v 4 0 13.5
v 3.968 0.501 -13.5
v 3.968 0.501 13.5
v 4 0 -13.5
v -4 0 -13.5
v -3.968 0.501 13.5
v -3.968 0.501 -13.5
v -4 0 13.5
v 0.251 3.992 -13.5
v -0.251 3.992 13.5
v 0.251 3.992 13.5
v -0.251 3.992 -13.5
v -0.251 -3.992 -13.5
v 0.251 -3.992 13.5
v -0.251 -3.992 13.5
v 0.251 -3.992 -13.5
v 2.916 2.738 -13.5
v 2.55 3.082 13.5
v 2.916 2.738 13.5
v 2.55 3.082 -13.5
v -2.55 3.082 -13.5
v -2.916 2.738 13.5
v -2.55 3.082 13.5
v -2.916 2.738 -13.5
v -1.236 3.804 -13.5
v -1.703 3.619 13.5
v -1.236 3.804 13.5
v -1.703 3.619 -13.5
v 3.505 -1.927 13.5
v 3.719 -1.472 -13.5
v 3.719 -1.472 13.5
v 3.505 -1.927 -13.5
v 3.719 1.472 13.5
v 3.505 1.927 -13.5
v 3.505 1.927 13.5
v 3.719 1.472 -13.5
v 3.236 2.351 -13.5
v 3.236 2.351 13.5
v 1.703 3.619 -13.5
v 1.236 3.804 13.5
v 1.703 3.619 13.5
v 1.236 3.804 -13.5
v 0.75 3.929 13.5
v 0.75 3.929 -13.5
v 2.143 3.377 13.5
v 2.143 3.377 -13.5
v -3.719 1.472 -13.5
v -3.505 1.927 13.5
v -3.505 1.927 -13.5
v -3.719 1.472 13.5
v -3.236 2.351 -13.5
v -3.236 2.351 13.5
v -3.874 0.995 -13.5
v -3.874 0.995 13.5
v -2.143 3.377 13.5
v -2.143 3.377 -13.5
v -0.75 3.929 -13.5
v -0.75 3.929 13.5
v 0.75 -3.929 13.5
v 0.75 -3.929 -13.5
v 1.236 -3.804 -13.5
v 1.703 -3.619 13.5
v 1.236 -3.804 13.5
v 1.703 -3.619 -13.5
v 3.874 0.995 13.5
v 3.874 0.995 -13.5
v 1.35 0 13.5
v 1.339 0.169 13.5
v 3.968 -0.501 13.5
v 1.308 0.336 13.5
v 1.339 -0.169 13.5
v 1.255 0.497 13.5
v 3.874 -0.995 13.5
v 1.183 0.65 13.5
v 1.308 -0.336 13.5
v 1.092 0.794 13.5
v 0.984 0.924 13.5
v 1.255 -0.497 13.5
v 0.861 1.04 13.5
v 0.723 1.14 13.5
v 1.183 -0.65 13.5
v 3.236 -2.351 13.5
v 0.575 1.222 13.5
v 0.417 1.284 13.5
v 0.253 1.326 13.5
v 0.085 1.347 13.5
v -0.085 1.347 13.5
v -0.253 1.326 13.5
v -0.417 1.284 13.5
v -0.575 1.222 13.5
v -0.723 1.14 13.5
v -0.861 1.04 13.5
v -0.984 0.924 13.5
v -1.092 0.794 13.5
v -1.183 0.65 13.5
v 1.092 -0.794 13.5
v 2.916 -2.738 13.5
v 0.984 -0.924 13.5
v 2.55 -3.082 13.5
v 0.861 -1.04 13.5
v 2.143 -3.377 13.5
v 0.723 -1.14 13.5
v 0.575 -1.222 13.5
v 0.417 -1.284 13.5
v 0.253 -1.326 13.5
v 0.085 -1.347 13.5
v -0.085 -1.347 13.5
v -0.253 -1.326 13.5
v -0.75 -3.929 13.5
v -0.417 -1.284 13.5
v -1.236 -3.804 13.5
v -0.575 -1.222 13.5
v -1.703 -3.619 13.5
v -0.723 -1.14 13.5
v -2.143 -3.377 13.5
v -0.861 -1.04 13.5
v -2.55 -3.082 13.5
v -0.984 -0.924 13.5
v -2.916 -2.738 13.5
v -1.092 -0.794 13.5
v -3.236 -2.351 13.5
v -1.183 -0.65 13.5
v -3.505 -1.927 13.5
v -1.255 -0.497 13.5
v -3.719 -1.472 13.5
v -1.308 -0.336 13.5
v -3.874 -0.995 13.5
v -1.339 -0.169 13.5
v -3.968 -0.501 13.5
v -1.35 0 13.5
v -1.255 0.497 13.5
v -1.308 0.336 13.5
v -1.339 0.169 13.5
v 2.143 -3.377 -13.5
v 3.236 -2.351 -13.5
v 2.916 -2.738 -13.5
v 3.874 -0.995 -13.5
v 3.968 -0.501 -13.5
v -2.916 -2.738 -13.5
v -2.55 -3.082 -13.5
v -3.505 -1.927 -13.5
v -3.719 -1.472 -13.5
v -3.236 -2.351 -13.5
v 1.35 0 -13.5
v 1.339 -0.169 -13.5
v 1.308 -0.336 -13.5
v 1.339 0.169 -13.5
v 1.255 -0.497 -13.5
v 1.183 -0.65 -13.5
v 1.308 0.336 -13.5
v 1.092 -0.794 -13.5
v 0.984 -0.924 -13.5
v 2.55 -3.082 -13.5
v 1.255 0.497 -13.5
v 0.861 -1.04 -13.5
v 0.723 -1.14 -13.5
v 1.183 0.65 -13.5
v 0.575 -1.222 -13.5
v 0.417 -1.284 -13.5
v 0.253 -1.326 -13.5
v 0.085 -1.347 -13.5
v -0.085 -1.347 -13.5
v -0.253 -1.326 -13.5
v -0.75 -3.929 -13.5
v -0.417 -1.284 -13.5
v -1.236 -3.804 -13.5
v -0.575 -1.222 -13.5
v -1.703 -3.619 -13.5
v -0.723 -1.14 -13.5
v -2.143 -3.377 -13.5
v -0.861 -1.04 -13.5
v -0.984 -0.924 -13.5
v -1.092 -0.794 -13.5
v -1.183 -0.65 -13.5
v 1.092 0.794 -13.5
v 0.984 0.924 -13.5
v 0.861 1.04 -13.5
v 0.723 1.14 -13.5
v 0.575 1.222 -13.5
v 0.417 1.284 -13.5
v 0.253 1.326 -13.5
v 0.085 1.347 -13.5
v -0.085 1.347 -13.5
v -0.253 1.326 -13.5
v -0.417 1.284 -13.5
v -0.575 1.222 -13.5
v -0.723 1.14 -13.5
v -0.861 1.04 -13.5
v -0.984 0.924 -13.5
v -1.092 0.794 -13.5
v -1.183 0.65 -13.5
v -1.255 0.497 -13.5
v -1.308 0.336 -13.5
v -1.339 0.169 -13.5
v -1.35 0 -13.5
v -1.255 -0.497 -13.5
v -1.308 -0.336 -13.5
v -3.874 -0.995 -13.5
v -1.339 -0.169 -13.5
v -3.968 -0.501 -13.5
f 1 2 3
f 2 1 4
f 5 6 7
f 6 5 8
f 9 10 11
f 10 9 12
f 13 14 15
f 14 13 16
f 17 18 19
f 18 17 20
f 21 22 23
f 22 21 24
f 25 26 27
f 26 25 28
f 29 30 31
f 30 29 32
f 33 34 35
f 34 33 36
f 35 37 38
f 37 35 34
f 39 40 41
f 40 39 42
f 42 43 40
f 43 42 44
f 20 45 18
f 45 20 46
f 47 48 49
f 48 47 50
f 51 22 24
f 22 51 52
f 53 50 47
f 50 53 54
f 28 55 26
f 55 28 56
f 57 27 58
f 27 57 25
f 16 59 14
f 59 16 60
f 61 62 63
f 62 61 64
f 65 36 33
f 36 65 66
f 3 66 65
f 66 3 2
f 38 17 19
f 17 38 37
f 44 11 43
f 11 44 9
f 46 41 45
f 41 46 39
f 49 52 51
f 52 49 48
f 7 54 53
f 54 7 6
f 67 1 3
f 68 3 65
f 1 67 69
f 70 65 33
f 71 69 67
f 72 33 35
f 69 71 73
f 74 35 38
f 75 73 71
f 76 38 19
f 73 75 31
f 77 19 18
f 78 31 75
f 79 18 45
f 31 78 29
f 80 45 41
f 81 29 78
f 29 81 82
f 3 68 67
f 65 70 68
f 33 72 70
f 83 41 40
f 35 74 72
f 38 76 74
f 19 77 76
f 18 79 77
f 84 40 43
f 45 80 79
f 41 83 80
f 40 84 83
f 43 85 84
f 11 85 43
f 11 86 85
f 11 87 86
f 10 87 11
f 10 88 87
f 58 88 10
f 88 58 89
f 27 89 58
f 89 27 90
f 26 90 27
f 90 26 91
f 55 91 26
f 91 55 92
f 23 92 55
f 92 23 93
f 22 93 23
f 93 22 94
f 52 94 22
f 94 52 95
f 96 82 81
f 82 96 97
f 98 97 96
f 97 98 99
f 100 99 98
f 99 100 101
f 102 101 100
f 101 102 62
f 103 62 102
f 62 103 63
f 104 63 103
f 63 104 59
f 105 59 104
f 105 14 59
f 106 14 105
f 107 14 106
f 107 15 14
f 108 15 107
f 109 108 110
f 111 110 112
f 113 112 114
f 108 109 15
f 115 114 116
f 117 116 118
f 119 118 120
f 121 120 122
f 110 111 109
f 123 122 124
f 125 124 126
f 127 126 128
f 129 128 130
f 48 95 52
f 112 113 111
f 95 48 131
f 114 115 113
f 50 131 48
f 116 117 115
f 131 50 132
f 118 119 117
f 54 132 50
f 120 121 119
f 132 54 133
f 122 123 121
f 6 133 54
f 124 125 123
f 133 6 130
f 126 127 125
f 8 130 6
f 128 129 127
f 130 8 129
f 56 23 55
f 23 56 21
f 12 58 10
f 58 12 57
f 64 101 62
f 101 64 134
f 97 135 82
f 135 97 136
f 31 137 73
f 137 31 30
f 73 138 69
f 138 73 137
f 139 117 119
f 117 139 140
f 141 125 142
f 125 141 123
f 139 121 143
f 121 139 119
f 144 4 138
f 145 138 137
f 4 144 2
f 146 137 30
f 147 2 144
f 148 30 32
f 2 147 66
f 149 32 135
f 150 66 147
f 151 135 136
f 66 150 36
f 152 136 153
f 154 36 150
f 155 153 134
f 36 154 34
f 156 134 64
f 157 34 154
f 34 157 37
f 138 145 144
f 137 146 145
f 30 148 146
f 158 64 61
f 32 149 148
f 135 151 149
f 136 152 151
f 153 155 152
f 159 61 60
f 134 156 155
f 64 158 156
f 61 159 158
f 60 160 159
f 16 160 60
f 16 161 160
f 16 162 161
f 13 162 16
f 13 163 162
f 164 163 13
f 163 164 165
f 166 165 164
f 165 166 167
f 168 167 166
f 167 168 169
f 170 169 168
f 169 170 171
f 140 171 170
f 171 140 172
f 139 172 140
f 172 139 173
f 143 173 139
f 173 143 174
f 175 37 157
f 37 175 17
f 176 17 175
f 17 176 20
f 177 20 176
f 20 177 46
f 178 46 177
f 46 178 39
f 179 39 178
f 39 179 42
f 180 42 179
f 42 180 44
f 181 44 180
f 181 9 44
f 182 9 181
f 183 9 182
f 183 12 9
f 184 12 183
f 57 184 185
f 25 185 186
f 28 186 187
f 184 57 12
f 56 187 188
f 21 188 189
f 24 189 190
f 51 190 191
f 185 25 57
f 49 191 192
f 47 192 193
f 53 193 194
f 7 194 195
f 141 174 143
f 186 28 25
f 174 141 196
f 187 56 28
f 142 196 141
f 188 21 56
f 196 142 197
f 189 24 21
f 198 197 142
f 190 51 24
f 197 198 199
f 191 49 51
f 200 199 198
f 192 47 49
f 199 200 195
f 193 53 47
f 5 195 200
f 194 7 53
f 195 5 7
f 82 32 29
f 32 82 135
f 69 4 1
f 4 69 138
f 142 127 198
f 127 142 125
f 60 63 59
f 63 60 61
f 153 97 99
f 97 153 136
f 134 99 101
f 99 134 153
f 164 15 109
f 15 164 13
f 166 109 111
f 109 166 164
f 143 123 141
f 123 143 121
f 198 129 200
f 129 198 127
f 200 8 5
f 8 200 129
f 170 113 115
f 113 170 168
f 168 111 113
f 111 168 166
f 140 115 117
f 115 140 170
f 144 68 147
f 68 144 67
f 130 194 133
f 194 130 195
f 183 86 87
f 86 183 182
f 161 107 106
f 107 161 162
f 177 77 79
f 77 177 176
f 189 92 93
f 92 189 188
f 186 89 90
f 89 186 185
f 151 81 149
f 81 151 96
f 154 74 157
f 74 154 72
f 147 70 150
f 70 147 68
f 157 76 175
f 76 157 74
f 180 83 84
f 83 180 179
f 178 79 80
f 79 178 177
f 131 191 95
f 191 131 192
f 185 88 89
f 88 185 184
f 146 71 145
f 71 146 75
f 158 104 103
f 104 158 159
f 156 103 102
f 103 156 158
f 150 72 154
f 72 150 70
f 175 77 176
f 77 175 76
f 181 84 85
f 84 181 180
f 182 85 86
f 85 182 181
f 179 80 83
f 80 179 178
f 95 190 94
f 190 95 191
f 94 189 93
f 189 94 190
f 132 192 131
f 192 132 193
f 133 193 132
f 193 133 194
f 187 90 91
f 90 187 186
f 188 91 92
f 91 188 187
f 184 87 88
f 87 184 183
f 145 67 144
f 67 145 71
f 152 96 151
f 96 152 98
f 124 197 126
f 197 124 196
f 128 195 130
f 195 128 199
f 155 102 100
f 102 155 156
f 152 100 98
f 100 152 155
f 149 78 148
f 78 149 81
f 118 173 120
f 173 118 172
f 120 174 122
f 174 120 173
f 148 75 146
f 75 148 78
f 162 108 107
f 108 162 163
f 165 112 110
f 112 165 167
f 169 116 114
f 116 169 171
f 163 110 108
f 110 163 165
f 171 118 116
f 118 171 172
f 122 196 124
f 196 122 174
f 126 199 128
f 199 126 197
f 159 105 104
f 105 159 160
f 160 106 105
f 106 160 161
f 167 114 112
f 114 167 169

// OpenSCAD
$fn = 50;


difference() {
	union() {
		translate(v = [0, 0, -13.5000000000]) {
			cylinder(h = 27, r = 4.0000000000);
		}
	}
	union() {
		translate(v = [0, 0, -100.0000000000]) {
			cylinder(h = 200, r = 1.3500000000);
		}
	}
}
